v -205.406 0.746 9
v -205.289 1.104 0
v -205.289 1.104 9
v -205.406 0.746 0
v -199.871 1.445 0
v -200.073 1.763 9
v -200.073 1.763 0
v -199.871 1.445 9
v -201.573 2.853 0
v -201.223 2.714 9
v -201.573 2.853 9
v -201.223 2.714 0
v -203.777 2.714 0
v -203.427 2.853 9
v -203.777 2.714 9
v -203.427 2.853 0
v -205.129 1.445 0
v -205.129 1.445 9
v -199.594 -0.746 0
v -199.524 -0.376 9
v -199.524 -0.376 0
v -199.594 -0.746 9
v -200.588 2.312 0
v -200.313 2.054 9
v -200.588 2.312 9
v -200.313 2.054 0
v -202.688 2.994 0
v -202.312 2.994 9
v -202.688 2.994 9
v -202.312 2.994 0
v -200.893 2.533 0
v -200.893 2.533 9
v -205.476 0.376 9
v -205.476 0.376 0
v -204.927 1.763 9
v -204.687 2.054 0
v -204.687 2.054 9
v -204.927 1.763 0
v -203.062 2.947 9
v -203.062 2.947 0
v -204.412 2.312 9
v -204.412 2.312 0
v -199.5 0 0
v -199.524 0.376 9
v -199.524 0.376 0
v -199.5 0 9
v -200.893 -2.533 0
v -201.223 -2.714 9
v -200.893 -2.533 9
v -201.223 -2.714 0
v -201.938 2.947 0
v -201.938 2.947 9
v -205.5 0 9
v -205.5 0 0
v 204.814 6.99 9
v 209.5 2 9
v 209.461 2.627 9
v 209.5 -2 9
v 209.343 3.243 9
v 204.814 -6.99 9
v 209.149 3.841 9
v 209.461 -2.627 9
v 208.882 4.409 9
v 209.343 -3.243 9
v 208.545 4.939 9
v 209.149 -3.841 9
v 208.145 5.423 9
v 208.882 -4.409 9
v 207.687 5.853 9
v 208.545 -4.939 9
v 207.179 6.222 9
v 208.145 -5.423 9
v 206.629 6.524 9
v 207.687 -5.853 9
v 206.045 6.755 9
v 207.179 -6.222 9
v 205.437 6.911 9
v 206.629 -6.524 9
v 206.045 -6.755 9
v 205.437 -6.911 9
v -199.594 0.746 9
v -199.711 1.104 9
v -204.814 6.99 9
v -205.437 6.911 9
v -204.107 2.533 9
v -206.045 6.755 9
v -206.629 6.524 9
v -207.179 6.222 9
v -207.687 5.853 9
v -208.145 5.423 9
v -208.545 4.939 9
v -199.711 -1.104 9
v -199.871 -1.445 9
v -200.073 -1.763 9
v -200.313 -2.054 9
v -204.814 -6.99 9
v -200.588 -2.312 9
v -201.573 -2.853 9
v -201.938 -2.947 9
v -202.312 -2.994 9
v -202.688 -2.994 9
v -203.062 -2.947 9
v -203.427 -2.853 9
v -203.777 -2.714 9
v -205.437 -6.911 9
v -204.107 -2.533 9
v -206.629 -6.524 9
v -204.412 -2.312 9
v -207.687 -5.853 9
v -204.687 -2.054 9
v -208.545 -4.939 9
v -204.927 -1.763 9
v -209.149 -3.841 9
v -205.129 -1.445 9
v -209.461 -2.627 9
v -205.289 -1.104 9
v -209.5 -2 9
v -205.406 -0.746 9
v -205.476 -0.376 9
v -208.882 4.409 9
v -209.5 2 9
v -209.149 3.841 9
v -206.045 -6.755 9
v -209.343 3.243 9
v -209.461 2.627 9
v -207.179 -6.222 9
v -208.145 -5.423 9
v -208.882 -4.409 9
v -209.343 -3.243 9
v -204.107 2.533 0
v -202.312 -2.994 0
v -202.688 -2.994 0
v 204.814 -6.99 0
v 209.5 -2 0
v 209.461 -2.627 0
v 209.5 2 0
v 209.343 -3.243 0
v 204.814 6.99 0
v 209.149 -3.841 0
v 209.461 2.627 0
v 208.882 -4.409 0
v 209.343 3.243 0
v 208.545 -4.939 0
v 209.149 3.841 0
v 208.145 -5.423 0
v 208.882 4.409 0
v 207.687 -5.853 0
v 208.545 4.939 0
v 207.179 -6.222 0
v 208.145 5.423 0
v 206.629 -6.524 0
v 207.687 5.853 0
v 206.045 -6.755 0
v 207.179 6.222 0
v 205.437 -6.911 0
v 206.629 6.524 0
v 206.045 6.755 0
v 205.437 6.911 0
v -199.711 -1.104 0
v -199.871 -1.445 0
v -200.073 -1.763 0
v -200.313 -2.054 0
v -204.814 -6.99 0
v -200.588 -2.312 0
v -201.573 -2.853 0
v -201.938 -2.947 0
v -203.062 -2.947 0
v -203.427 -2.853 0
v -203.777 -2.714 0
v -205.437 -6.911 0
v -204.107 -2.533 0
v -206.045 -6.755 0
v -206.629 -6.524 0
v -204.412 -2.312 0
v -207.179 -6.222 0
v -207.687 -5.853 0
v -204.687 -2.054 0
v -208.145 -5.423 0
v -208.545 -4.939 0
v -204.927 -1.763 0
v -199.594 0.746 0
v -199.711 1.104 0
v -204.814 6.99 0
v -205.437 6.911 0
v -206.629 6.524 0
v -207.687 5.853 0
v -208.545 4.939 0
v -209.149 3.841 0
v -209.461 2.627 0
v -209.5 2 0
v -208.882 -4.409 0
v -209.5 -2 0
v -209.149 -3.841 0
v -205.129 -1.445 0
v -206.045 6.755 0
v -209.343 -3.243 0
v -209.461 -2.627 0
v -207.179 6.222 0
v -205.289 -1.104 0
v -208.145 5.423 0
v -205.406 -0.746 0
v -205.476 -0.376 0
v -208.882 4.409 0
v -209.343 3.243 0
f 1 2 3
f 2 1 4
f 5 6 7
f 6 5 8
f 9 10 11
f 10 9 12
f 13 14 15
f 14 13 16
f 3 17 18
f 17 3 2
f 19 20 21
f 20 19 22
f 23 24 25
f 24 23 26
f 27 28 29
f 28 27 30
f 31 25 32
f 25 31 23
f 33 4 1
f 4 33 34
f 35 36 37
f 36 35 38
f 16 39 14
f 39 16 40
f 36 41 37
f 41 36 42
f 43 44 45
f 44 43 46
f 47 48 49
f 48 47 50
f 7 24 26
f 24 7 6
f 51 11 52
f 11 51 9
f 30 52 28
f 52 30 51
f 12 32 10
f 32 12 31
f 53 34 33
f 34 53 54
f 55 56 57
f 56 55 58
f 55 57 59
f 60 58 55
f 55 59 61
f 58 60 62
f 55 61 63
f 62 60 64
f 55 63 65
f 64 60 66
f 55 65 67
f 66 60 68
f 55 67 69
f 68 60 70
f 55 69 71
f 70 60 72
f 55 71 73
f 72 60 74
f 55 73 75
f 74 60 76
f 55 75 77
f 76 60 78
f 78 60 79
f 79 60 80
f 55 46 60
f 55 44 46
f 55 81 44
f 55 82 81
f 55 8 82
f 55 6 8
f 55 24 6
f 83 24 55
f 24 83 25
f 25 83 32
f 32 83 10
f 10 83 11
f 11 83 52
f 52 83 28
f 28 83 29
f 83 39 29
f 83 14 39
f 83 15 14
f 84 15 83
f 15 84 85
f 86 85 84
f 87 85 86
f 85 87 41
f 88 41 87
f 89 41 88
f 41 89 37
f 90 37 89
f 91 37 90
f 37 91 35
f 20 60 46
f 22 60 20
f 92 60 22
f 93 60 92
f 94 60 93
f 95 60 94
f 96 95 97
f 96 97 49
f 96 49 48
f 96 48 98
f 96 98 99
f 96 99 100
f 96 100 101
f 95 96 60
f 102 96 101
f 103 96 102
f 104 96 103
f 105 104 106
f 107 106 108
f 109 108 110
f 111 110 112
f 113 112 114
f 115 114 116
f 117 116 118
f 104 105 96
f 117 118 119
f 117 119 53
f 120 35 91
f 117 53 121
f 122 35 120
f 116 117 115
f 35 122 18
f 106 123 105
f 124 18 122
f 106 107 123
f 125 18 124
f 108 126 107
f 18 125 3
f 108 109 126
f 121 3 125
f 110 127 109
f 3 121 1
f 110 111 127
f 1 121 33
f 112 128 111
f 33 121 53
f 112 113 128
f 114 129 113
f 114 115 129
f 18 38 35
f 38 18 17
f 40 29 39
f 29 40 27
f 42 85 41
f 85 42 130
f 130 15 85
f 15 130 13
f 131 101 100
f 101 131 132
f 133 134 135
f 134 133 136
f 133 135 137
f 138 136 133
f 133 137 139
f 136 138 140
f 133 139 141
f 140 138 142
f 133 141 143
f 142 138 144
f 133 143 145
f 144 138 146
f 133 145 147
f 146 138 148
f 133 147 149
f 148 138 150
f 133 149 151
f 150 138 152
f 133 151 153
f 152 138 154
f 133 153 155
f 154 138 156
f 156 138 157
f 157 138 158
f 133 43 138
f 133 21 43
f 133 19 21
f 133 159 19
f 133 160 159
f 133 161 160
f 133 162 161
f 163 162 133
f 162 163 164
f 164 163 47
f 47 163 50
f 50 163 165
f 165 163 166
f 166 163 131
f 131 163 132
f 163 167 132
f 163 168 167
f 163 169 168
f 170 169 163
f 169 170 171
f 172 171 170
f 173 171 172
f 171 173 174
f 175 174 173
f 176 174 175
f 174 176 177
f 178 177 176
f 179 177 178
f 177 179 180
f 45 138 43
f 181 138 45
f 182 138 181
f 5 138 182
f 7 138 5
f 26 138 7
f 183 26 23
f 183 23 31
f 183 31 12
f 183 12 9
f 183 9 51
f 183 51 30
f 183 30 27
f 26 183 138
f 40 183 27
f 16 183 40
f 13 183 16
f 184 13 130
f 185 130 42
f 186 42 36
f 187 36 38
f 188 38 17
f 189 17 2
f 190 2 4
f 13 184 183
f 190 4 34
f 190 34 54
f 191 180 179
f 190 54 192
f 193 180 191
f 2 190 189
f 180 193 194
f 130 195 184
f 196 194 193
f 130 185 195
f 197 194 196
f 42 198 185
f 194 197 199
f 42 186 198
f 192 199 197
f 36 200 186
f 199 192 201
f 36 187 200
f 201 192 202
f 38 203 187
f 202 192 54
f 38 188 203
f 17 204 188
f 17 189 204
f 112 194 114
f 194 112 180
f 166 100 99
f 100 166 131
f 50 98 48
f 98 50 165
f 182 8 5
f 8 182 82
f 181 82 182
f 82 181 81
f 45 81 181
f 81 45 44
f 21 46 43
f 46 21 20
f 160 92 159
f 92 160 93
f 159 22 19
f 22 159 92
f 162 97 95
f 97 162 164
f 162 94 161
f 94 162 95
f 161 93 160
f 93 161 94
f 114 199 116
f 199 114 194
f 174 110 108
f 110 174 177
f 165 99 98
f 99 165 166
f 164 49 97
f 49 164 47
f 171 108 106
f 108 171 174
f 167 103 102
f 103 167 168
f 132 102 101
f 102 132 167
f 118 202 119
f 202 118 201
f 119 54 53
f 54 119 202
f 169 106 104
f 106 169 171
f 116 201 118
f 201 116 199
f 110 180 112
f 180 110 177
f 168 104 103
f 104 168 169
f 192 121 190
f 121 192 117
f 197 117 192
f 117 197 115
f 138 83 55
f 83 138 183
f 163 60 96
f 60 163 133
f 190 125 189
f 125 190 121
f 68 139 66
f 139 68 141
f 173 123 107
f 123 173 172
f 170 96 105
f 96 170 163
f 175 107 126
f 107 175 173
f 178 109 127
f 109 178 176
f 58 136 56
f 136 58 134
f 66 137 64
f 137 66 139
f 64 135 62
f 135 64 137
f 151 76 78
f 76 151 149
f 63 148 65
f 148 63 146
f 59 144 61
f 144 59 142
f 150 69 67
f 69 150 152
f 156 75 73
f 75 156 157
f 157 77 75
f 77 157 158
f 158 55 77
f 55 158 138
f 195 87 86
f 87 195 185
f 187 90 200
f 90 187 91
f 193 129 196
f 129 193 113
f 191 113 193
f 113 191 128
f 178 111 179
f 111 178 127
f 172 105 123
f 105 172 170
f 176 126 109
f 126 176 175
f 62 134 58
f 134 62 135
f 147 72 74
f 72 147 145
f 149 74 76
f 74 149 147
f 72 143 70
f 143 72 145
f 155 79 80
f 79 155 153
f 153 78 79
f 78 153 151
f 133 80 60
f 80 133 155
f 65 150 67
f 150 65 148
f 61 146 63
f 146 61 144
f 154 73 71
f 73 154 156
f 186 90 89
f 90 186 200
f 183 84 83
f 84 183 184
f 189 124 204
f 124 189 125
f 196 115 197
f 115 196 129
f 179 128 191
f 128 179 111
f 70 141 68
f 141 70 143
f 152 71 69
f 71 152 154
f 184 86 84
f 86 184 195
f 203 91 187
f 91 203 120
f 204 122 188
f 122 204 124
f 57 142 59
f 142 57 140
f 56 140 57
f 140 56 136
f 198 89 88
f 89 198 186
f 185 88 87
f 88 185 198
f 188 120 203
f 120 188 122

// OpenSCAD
$fn = 50;


difference() {
	union() {
		hull() {
			translate(v = [-204.5000000000, 2.0000000000, 0]) {
				cylinder(h = 9, r = 5);
			}
			translate(v = [204.5000000000, 2.0000000000, 0]) {
				cylinder(h = 9, r = 5);
			}
			translate(v = [-204.5000000000, -2.0000000000, 0]) {
				cylinder(h = 9, r = 5);
			}
			translate(v = [204.5000000000, -2.0000000000, 0]) {
				cylinder(h = 9, r = 5);
			}
		}
	}
	union() {
		translate(v = [-202.5000000000, 0.0000000000, 0]) {
			cylinder(h = 9, r = 3.0000000000);
		}
		translate(v = [-202.5000000000, 0.0000000000, 0]) {
			cylinder(h = 9, r = 1.5000000000);
		}
		translate(v = [-202.5000000000, 0.0000000000, 0]) {
			cylinder(h = 9, r = 1.5000000000);
		}
		translate(v = [-202.5000000000, 0.0000000000, 0]) {
			cylinder(h = 9, r = 1.5000000000);
		}
	}
}
